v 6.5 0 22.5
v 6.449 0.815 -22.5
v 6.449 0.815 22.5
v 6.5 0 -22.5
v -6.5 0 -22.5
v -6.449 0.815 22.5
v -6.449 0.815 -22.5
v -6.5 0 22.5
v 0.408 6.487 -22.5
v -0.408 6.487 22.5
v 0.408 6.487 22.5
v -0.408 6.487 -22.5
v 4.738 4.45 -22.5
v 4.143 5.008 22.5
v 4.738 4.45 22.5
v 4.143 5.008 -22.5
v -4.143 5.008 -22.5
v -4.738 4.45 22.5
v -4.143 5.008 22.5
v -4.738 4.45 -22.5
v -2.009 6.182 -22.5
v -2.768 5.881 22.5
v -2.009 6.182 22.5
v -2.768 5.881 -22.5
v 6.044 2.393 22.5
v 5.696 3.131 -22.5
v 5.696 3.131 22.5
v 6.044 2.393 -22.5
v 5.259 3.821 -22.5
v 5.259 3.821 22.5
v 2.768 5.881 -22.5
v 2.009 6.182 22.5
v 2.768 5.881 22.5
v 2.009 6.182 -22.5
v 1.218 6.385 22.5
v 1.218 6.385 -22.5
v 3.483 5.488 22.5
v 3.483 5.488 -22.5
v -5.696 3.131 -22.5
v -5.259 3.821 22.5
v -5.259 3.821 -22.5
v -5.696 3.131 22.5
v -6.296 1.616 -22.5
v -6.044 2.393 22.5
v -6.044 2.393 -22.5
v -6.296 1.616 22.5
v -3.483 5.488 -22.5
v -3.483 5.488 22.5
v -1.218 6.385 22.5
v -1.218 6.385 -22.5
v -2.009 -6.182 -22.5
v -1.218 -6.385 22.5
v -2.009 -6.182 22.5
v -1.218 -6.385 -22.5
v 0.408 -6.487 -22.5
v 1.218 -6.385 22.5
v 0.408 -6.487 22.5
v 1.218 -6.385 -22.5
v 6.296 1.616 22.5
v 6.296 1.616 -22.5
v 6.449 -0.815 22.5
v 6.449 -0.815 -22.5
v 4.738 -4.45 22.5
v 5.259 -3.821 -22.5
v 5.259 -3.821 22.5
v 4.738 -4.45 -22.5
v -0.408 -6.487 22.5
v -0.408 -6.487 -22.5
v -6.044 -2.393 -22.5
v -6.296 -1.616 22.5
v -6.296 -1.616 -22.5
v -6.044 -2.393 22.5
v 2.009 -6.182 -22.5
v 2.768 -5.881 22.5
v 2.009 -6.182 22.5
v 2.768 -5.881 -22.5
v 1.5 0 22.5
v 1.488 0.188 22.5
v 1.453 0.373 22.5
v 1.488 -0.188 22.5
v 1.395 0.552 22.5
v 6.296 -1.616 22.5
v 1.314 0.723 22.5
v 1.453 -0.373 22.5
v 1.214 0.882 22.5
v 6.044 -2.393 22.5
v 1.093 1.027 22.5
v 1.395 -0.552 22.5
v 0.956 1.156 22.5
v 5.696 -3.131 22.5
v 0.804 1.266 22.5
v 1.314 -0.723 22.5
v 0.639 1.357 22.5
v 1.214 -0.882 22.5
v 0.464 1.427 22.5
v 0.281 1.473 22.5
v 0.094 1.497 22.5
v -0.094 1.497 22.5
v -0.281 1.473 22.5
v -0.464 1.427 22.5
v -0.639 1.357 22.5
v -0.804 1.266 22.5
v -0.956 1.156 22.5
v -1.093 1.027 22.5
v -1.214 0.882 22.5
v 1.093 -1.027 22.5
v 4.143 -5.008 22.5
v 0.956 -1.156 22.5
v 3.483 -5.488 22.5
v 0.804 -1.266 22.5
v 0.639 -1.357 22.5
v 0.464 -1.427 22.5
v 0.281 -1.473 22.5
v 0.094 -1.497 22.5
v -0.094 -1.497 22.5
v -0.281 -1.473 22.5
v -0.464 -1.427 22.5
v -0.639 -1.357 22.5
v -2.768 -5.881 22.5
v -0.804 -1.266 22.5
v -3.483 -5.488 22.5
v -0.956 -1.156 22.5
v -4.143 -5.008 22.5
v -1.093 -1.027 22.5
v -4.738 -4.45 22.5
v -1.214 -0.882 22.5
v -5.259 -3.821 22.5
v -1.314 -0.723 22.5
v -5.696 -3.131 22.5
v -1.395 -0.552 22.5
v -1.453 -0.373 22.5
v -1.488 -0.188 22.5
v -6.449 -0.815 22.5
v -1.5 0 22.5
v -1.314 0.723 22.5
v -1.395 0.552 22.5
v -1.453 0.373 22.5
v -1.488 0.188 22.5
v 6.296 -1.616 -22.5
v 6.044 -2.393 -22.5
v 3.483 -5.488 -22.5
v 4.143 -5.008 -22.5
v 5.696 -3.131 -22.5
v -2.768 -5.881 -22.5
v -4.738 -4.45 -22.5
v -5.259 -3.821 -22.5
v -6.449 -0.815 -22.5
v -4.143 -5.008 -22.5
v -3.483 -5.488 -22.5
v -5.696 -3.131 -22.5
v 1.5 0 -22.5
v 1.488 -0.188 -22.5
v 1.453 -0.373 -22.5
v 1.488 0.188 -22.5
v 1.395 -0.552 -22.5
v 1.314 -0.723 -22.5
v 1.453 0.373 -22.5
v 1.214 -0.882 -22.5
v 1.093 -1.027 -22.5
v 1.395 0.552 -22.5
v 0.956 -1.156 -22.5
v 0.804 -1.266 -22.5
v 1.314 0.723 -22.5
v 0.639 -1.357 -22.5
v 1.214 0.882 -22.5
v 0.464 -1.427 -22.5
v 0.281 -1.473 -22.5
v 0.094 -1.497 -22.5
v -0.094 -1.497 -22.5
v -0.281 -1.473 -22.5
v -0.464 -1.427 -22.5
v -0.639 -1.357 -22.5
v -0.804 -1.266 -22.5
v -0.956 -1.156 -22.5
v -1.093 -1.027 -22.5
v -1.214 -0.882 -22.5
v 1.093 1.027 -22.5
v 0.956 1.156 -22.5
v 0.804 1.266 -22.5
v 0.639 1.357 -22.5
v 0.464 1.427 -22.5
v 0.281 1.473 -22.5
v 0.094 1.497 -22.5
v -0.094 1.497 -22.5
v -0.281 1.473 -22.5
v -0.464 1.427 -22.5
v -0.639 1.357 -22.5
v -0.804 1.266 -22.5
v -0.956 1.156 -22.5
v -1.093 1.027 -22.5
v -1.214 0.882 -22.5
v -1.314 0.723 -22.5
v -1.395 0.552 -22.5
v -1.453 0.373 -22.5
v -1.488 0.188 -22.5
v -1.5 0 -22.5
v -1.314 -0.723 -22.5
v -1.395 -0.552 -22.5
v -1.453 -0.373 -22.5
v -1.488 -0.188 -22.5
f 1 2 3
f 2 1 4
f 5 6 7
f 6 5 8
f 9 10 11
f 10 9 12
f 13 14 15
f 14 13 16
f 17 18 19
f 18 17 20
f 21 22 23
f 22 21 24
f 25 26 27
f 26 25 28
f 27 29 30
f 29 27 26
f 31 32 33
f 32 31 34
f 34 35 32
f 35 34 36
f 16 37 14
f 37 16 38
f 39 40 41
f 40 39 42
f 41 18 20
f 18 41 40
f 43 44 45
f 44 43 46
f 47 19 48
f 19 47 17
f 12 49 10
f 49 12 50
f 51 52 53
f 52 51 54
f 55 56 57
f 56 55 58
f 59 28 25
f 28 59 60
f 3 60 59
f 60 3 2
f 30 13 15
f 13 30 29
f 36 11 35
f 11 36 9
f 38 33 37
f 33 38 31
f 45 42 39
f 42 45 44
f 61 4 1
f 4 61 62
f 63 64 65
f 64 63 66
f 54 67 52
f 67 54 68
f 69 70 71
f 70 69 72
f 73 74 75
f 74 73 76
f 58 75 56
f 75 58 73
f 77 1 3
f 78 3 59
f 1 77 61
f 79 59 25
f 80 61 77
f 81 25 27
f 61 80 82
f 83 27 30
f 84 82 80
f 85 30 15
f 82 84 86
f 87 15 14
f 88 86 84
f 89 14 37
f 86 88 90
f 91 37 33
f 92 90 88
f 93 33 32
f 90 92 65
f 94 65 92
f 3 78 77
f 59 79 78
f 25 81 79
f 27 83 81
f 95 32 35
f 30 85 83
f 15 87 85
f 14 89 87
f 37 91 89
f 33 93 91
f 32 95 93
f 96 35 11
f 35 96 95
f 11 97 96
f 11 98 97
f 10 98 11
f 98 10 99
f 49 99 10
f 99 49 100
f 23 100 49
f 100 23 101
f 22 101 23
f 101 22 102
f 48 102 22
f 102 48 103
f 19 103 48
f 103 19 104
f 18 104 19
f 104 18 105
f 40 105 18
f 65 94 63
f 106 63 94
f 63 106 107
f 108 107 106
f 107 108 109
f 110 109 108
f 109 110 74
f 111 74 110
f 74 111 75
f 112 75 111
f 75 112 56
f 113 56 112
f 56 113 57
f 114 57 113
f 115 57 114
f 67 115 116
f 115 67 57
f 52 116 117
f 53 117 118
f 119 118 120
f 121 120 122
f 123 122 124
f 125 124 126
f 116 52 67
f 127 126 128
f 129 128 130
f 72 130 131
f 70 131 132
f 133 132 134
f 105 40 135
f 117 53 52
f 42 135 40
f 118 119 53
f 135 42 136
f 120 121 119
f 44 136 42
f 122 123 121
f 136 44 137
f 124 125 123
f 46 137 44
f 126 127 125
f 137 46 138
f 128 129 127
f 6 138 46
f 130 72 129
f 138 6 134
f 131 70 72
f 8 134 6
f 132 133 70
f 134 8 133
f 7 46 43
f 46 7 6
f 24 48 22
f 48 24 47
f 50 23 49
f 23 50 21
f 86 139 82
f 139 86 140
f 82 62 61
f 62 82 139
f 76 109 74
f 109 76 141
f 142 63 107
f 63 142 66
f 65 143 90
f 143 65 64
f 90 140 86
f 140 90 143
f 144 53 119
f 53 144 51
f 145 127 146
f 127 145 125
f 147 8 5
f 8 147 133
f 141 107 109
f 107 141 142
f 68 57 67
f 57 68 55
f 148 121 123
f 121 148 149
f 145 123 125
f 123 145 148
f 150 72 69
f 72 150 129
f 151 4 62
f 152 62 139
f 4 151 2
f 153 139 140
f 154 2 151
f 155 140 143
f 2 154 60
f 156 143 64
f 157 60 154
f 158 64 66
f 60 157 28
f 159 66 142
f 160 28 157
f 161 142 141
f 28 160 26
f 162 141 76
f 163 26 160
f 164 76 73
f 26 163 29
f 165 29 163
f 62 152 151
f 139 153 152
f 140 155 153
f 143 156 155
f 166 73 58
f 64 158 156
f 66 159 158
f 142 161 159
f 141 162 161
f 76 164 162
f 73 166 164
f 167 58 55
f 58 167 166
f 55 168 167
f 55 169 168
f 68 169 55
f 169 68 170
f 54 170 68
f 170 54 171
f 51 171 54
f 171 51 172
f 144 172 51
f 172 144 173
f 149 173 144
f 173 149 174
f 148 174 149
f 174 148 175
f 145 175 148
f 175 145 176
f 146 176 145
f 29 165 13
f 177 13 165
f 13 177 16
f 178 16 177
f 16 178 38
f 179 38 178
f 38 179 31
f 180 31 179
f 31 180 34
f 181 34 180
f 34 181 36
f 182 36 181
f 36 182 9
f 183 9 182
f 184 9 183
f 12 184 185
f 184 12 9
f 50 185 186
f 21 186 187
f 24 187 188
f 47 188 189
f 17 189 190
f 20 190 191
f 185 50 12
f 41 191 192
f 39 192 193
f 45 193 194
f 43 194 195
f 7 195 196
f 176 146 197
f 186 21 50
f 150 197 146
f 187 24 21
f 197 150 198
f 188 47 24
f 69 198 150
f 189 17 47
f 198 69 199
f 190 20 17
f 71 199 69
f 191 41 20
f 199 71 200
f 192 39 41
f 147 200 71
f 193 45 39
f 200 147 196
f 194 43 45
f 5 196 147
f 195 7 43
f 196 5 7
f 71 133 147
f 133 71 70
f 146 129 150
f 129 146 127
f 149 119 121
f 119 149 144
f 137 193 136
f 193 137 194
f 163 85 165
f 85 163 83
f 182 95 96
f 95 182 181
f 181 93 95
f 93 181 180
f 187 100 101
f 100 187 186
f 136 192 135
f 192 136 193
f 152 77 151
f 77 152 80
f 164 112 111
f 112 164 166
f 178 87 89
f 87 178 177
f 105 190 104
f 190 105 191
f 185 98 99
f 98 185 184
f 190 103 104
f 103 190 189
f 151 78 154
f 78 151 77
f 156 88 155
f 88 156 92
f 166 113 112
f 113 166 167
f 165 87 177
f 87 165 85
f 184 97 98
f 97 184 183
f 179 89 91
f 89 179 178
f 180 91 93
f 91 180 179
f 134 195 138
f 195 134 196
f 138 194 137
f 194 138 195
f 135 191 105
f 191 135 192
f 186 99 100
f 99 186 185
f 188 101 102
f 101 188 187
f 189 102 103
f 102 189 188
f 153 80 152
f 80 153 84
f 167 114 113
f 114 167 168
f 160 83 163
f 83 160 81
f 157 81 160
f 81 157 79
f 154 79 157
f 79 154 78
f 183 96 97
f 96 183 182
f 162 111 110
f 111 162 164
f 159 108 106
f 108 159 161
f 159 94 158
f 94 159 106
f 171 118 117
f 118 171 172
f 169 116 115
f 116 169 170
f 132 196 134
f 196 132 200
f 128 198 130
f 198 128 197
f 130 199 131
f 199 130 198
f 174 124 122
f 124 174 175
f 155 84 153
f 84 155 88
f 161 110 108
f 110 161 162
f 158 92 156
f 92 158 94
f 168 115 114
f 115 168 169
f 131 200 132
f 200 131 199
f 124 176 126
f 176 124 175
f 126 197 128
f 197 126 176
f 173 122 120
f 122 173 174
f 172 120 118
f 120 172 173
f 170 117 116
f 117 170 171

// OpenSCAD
$fn = 50;


difference() {
	union() {
		translate(v = [0, 0, -22.5000000000]) {
			cylinder(h = 45, r = 6.5000000000);
		}
	}
	union() {
		translate(v = [0, 0, -100.0000000000]) {
			cylinder(h = 200, r = 1.5000000000);
		}
	}
}
